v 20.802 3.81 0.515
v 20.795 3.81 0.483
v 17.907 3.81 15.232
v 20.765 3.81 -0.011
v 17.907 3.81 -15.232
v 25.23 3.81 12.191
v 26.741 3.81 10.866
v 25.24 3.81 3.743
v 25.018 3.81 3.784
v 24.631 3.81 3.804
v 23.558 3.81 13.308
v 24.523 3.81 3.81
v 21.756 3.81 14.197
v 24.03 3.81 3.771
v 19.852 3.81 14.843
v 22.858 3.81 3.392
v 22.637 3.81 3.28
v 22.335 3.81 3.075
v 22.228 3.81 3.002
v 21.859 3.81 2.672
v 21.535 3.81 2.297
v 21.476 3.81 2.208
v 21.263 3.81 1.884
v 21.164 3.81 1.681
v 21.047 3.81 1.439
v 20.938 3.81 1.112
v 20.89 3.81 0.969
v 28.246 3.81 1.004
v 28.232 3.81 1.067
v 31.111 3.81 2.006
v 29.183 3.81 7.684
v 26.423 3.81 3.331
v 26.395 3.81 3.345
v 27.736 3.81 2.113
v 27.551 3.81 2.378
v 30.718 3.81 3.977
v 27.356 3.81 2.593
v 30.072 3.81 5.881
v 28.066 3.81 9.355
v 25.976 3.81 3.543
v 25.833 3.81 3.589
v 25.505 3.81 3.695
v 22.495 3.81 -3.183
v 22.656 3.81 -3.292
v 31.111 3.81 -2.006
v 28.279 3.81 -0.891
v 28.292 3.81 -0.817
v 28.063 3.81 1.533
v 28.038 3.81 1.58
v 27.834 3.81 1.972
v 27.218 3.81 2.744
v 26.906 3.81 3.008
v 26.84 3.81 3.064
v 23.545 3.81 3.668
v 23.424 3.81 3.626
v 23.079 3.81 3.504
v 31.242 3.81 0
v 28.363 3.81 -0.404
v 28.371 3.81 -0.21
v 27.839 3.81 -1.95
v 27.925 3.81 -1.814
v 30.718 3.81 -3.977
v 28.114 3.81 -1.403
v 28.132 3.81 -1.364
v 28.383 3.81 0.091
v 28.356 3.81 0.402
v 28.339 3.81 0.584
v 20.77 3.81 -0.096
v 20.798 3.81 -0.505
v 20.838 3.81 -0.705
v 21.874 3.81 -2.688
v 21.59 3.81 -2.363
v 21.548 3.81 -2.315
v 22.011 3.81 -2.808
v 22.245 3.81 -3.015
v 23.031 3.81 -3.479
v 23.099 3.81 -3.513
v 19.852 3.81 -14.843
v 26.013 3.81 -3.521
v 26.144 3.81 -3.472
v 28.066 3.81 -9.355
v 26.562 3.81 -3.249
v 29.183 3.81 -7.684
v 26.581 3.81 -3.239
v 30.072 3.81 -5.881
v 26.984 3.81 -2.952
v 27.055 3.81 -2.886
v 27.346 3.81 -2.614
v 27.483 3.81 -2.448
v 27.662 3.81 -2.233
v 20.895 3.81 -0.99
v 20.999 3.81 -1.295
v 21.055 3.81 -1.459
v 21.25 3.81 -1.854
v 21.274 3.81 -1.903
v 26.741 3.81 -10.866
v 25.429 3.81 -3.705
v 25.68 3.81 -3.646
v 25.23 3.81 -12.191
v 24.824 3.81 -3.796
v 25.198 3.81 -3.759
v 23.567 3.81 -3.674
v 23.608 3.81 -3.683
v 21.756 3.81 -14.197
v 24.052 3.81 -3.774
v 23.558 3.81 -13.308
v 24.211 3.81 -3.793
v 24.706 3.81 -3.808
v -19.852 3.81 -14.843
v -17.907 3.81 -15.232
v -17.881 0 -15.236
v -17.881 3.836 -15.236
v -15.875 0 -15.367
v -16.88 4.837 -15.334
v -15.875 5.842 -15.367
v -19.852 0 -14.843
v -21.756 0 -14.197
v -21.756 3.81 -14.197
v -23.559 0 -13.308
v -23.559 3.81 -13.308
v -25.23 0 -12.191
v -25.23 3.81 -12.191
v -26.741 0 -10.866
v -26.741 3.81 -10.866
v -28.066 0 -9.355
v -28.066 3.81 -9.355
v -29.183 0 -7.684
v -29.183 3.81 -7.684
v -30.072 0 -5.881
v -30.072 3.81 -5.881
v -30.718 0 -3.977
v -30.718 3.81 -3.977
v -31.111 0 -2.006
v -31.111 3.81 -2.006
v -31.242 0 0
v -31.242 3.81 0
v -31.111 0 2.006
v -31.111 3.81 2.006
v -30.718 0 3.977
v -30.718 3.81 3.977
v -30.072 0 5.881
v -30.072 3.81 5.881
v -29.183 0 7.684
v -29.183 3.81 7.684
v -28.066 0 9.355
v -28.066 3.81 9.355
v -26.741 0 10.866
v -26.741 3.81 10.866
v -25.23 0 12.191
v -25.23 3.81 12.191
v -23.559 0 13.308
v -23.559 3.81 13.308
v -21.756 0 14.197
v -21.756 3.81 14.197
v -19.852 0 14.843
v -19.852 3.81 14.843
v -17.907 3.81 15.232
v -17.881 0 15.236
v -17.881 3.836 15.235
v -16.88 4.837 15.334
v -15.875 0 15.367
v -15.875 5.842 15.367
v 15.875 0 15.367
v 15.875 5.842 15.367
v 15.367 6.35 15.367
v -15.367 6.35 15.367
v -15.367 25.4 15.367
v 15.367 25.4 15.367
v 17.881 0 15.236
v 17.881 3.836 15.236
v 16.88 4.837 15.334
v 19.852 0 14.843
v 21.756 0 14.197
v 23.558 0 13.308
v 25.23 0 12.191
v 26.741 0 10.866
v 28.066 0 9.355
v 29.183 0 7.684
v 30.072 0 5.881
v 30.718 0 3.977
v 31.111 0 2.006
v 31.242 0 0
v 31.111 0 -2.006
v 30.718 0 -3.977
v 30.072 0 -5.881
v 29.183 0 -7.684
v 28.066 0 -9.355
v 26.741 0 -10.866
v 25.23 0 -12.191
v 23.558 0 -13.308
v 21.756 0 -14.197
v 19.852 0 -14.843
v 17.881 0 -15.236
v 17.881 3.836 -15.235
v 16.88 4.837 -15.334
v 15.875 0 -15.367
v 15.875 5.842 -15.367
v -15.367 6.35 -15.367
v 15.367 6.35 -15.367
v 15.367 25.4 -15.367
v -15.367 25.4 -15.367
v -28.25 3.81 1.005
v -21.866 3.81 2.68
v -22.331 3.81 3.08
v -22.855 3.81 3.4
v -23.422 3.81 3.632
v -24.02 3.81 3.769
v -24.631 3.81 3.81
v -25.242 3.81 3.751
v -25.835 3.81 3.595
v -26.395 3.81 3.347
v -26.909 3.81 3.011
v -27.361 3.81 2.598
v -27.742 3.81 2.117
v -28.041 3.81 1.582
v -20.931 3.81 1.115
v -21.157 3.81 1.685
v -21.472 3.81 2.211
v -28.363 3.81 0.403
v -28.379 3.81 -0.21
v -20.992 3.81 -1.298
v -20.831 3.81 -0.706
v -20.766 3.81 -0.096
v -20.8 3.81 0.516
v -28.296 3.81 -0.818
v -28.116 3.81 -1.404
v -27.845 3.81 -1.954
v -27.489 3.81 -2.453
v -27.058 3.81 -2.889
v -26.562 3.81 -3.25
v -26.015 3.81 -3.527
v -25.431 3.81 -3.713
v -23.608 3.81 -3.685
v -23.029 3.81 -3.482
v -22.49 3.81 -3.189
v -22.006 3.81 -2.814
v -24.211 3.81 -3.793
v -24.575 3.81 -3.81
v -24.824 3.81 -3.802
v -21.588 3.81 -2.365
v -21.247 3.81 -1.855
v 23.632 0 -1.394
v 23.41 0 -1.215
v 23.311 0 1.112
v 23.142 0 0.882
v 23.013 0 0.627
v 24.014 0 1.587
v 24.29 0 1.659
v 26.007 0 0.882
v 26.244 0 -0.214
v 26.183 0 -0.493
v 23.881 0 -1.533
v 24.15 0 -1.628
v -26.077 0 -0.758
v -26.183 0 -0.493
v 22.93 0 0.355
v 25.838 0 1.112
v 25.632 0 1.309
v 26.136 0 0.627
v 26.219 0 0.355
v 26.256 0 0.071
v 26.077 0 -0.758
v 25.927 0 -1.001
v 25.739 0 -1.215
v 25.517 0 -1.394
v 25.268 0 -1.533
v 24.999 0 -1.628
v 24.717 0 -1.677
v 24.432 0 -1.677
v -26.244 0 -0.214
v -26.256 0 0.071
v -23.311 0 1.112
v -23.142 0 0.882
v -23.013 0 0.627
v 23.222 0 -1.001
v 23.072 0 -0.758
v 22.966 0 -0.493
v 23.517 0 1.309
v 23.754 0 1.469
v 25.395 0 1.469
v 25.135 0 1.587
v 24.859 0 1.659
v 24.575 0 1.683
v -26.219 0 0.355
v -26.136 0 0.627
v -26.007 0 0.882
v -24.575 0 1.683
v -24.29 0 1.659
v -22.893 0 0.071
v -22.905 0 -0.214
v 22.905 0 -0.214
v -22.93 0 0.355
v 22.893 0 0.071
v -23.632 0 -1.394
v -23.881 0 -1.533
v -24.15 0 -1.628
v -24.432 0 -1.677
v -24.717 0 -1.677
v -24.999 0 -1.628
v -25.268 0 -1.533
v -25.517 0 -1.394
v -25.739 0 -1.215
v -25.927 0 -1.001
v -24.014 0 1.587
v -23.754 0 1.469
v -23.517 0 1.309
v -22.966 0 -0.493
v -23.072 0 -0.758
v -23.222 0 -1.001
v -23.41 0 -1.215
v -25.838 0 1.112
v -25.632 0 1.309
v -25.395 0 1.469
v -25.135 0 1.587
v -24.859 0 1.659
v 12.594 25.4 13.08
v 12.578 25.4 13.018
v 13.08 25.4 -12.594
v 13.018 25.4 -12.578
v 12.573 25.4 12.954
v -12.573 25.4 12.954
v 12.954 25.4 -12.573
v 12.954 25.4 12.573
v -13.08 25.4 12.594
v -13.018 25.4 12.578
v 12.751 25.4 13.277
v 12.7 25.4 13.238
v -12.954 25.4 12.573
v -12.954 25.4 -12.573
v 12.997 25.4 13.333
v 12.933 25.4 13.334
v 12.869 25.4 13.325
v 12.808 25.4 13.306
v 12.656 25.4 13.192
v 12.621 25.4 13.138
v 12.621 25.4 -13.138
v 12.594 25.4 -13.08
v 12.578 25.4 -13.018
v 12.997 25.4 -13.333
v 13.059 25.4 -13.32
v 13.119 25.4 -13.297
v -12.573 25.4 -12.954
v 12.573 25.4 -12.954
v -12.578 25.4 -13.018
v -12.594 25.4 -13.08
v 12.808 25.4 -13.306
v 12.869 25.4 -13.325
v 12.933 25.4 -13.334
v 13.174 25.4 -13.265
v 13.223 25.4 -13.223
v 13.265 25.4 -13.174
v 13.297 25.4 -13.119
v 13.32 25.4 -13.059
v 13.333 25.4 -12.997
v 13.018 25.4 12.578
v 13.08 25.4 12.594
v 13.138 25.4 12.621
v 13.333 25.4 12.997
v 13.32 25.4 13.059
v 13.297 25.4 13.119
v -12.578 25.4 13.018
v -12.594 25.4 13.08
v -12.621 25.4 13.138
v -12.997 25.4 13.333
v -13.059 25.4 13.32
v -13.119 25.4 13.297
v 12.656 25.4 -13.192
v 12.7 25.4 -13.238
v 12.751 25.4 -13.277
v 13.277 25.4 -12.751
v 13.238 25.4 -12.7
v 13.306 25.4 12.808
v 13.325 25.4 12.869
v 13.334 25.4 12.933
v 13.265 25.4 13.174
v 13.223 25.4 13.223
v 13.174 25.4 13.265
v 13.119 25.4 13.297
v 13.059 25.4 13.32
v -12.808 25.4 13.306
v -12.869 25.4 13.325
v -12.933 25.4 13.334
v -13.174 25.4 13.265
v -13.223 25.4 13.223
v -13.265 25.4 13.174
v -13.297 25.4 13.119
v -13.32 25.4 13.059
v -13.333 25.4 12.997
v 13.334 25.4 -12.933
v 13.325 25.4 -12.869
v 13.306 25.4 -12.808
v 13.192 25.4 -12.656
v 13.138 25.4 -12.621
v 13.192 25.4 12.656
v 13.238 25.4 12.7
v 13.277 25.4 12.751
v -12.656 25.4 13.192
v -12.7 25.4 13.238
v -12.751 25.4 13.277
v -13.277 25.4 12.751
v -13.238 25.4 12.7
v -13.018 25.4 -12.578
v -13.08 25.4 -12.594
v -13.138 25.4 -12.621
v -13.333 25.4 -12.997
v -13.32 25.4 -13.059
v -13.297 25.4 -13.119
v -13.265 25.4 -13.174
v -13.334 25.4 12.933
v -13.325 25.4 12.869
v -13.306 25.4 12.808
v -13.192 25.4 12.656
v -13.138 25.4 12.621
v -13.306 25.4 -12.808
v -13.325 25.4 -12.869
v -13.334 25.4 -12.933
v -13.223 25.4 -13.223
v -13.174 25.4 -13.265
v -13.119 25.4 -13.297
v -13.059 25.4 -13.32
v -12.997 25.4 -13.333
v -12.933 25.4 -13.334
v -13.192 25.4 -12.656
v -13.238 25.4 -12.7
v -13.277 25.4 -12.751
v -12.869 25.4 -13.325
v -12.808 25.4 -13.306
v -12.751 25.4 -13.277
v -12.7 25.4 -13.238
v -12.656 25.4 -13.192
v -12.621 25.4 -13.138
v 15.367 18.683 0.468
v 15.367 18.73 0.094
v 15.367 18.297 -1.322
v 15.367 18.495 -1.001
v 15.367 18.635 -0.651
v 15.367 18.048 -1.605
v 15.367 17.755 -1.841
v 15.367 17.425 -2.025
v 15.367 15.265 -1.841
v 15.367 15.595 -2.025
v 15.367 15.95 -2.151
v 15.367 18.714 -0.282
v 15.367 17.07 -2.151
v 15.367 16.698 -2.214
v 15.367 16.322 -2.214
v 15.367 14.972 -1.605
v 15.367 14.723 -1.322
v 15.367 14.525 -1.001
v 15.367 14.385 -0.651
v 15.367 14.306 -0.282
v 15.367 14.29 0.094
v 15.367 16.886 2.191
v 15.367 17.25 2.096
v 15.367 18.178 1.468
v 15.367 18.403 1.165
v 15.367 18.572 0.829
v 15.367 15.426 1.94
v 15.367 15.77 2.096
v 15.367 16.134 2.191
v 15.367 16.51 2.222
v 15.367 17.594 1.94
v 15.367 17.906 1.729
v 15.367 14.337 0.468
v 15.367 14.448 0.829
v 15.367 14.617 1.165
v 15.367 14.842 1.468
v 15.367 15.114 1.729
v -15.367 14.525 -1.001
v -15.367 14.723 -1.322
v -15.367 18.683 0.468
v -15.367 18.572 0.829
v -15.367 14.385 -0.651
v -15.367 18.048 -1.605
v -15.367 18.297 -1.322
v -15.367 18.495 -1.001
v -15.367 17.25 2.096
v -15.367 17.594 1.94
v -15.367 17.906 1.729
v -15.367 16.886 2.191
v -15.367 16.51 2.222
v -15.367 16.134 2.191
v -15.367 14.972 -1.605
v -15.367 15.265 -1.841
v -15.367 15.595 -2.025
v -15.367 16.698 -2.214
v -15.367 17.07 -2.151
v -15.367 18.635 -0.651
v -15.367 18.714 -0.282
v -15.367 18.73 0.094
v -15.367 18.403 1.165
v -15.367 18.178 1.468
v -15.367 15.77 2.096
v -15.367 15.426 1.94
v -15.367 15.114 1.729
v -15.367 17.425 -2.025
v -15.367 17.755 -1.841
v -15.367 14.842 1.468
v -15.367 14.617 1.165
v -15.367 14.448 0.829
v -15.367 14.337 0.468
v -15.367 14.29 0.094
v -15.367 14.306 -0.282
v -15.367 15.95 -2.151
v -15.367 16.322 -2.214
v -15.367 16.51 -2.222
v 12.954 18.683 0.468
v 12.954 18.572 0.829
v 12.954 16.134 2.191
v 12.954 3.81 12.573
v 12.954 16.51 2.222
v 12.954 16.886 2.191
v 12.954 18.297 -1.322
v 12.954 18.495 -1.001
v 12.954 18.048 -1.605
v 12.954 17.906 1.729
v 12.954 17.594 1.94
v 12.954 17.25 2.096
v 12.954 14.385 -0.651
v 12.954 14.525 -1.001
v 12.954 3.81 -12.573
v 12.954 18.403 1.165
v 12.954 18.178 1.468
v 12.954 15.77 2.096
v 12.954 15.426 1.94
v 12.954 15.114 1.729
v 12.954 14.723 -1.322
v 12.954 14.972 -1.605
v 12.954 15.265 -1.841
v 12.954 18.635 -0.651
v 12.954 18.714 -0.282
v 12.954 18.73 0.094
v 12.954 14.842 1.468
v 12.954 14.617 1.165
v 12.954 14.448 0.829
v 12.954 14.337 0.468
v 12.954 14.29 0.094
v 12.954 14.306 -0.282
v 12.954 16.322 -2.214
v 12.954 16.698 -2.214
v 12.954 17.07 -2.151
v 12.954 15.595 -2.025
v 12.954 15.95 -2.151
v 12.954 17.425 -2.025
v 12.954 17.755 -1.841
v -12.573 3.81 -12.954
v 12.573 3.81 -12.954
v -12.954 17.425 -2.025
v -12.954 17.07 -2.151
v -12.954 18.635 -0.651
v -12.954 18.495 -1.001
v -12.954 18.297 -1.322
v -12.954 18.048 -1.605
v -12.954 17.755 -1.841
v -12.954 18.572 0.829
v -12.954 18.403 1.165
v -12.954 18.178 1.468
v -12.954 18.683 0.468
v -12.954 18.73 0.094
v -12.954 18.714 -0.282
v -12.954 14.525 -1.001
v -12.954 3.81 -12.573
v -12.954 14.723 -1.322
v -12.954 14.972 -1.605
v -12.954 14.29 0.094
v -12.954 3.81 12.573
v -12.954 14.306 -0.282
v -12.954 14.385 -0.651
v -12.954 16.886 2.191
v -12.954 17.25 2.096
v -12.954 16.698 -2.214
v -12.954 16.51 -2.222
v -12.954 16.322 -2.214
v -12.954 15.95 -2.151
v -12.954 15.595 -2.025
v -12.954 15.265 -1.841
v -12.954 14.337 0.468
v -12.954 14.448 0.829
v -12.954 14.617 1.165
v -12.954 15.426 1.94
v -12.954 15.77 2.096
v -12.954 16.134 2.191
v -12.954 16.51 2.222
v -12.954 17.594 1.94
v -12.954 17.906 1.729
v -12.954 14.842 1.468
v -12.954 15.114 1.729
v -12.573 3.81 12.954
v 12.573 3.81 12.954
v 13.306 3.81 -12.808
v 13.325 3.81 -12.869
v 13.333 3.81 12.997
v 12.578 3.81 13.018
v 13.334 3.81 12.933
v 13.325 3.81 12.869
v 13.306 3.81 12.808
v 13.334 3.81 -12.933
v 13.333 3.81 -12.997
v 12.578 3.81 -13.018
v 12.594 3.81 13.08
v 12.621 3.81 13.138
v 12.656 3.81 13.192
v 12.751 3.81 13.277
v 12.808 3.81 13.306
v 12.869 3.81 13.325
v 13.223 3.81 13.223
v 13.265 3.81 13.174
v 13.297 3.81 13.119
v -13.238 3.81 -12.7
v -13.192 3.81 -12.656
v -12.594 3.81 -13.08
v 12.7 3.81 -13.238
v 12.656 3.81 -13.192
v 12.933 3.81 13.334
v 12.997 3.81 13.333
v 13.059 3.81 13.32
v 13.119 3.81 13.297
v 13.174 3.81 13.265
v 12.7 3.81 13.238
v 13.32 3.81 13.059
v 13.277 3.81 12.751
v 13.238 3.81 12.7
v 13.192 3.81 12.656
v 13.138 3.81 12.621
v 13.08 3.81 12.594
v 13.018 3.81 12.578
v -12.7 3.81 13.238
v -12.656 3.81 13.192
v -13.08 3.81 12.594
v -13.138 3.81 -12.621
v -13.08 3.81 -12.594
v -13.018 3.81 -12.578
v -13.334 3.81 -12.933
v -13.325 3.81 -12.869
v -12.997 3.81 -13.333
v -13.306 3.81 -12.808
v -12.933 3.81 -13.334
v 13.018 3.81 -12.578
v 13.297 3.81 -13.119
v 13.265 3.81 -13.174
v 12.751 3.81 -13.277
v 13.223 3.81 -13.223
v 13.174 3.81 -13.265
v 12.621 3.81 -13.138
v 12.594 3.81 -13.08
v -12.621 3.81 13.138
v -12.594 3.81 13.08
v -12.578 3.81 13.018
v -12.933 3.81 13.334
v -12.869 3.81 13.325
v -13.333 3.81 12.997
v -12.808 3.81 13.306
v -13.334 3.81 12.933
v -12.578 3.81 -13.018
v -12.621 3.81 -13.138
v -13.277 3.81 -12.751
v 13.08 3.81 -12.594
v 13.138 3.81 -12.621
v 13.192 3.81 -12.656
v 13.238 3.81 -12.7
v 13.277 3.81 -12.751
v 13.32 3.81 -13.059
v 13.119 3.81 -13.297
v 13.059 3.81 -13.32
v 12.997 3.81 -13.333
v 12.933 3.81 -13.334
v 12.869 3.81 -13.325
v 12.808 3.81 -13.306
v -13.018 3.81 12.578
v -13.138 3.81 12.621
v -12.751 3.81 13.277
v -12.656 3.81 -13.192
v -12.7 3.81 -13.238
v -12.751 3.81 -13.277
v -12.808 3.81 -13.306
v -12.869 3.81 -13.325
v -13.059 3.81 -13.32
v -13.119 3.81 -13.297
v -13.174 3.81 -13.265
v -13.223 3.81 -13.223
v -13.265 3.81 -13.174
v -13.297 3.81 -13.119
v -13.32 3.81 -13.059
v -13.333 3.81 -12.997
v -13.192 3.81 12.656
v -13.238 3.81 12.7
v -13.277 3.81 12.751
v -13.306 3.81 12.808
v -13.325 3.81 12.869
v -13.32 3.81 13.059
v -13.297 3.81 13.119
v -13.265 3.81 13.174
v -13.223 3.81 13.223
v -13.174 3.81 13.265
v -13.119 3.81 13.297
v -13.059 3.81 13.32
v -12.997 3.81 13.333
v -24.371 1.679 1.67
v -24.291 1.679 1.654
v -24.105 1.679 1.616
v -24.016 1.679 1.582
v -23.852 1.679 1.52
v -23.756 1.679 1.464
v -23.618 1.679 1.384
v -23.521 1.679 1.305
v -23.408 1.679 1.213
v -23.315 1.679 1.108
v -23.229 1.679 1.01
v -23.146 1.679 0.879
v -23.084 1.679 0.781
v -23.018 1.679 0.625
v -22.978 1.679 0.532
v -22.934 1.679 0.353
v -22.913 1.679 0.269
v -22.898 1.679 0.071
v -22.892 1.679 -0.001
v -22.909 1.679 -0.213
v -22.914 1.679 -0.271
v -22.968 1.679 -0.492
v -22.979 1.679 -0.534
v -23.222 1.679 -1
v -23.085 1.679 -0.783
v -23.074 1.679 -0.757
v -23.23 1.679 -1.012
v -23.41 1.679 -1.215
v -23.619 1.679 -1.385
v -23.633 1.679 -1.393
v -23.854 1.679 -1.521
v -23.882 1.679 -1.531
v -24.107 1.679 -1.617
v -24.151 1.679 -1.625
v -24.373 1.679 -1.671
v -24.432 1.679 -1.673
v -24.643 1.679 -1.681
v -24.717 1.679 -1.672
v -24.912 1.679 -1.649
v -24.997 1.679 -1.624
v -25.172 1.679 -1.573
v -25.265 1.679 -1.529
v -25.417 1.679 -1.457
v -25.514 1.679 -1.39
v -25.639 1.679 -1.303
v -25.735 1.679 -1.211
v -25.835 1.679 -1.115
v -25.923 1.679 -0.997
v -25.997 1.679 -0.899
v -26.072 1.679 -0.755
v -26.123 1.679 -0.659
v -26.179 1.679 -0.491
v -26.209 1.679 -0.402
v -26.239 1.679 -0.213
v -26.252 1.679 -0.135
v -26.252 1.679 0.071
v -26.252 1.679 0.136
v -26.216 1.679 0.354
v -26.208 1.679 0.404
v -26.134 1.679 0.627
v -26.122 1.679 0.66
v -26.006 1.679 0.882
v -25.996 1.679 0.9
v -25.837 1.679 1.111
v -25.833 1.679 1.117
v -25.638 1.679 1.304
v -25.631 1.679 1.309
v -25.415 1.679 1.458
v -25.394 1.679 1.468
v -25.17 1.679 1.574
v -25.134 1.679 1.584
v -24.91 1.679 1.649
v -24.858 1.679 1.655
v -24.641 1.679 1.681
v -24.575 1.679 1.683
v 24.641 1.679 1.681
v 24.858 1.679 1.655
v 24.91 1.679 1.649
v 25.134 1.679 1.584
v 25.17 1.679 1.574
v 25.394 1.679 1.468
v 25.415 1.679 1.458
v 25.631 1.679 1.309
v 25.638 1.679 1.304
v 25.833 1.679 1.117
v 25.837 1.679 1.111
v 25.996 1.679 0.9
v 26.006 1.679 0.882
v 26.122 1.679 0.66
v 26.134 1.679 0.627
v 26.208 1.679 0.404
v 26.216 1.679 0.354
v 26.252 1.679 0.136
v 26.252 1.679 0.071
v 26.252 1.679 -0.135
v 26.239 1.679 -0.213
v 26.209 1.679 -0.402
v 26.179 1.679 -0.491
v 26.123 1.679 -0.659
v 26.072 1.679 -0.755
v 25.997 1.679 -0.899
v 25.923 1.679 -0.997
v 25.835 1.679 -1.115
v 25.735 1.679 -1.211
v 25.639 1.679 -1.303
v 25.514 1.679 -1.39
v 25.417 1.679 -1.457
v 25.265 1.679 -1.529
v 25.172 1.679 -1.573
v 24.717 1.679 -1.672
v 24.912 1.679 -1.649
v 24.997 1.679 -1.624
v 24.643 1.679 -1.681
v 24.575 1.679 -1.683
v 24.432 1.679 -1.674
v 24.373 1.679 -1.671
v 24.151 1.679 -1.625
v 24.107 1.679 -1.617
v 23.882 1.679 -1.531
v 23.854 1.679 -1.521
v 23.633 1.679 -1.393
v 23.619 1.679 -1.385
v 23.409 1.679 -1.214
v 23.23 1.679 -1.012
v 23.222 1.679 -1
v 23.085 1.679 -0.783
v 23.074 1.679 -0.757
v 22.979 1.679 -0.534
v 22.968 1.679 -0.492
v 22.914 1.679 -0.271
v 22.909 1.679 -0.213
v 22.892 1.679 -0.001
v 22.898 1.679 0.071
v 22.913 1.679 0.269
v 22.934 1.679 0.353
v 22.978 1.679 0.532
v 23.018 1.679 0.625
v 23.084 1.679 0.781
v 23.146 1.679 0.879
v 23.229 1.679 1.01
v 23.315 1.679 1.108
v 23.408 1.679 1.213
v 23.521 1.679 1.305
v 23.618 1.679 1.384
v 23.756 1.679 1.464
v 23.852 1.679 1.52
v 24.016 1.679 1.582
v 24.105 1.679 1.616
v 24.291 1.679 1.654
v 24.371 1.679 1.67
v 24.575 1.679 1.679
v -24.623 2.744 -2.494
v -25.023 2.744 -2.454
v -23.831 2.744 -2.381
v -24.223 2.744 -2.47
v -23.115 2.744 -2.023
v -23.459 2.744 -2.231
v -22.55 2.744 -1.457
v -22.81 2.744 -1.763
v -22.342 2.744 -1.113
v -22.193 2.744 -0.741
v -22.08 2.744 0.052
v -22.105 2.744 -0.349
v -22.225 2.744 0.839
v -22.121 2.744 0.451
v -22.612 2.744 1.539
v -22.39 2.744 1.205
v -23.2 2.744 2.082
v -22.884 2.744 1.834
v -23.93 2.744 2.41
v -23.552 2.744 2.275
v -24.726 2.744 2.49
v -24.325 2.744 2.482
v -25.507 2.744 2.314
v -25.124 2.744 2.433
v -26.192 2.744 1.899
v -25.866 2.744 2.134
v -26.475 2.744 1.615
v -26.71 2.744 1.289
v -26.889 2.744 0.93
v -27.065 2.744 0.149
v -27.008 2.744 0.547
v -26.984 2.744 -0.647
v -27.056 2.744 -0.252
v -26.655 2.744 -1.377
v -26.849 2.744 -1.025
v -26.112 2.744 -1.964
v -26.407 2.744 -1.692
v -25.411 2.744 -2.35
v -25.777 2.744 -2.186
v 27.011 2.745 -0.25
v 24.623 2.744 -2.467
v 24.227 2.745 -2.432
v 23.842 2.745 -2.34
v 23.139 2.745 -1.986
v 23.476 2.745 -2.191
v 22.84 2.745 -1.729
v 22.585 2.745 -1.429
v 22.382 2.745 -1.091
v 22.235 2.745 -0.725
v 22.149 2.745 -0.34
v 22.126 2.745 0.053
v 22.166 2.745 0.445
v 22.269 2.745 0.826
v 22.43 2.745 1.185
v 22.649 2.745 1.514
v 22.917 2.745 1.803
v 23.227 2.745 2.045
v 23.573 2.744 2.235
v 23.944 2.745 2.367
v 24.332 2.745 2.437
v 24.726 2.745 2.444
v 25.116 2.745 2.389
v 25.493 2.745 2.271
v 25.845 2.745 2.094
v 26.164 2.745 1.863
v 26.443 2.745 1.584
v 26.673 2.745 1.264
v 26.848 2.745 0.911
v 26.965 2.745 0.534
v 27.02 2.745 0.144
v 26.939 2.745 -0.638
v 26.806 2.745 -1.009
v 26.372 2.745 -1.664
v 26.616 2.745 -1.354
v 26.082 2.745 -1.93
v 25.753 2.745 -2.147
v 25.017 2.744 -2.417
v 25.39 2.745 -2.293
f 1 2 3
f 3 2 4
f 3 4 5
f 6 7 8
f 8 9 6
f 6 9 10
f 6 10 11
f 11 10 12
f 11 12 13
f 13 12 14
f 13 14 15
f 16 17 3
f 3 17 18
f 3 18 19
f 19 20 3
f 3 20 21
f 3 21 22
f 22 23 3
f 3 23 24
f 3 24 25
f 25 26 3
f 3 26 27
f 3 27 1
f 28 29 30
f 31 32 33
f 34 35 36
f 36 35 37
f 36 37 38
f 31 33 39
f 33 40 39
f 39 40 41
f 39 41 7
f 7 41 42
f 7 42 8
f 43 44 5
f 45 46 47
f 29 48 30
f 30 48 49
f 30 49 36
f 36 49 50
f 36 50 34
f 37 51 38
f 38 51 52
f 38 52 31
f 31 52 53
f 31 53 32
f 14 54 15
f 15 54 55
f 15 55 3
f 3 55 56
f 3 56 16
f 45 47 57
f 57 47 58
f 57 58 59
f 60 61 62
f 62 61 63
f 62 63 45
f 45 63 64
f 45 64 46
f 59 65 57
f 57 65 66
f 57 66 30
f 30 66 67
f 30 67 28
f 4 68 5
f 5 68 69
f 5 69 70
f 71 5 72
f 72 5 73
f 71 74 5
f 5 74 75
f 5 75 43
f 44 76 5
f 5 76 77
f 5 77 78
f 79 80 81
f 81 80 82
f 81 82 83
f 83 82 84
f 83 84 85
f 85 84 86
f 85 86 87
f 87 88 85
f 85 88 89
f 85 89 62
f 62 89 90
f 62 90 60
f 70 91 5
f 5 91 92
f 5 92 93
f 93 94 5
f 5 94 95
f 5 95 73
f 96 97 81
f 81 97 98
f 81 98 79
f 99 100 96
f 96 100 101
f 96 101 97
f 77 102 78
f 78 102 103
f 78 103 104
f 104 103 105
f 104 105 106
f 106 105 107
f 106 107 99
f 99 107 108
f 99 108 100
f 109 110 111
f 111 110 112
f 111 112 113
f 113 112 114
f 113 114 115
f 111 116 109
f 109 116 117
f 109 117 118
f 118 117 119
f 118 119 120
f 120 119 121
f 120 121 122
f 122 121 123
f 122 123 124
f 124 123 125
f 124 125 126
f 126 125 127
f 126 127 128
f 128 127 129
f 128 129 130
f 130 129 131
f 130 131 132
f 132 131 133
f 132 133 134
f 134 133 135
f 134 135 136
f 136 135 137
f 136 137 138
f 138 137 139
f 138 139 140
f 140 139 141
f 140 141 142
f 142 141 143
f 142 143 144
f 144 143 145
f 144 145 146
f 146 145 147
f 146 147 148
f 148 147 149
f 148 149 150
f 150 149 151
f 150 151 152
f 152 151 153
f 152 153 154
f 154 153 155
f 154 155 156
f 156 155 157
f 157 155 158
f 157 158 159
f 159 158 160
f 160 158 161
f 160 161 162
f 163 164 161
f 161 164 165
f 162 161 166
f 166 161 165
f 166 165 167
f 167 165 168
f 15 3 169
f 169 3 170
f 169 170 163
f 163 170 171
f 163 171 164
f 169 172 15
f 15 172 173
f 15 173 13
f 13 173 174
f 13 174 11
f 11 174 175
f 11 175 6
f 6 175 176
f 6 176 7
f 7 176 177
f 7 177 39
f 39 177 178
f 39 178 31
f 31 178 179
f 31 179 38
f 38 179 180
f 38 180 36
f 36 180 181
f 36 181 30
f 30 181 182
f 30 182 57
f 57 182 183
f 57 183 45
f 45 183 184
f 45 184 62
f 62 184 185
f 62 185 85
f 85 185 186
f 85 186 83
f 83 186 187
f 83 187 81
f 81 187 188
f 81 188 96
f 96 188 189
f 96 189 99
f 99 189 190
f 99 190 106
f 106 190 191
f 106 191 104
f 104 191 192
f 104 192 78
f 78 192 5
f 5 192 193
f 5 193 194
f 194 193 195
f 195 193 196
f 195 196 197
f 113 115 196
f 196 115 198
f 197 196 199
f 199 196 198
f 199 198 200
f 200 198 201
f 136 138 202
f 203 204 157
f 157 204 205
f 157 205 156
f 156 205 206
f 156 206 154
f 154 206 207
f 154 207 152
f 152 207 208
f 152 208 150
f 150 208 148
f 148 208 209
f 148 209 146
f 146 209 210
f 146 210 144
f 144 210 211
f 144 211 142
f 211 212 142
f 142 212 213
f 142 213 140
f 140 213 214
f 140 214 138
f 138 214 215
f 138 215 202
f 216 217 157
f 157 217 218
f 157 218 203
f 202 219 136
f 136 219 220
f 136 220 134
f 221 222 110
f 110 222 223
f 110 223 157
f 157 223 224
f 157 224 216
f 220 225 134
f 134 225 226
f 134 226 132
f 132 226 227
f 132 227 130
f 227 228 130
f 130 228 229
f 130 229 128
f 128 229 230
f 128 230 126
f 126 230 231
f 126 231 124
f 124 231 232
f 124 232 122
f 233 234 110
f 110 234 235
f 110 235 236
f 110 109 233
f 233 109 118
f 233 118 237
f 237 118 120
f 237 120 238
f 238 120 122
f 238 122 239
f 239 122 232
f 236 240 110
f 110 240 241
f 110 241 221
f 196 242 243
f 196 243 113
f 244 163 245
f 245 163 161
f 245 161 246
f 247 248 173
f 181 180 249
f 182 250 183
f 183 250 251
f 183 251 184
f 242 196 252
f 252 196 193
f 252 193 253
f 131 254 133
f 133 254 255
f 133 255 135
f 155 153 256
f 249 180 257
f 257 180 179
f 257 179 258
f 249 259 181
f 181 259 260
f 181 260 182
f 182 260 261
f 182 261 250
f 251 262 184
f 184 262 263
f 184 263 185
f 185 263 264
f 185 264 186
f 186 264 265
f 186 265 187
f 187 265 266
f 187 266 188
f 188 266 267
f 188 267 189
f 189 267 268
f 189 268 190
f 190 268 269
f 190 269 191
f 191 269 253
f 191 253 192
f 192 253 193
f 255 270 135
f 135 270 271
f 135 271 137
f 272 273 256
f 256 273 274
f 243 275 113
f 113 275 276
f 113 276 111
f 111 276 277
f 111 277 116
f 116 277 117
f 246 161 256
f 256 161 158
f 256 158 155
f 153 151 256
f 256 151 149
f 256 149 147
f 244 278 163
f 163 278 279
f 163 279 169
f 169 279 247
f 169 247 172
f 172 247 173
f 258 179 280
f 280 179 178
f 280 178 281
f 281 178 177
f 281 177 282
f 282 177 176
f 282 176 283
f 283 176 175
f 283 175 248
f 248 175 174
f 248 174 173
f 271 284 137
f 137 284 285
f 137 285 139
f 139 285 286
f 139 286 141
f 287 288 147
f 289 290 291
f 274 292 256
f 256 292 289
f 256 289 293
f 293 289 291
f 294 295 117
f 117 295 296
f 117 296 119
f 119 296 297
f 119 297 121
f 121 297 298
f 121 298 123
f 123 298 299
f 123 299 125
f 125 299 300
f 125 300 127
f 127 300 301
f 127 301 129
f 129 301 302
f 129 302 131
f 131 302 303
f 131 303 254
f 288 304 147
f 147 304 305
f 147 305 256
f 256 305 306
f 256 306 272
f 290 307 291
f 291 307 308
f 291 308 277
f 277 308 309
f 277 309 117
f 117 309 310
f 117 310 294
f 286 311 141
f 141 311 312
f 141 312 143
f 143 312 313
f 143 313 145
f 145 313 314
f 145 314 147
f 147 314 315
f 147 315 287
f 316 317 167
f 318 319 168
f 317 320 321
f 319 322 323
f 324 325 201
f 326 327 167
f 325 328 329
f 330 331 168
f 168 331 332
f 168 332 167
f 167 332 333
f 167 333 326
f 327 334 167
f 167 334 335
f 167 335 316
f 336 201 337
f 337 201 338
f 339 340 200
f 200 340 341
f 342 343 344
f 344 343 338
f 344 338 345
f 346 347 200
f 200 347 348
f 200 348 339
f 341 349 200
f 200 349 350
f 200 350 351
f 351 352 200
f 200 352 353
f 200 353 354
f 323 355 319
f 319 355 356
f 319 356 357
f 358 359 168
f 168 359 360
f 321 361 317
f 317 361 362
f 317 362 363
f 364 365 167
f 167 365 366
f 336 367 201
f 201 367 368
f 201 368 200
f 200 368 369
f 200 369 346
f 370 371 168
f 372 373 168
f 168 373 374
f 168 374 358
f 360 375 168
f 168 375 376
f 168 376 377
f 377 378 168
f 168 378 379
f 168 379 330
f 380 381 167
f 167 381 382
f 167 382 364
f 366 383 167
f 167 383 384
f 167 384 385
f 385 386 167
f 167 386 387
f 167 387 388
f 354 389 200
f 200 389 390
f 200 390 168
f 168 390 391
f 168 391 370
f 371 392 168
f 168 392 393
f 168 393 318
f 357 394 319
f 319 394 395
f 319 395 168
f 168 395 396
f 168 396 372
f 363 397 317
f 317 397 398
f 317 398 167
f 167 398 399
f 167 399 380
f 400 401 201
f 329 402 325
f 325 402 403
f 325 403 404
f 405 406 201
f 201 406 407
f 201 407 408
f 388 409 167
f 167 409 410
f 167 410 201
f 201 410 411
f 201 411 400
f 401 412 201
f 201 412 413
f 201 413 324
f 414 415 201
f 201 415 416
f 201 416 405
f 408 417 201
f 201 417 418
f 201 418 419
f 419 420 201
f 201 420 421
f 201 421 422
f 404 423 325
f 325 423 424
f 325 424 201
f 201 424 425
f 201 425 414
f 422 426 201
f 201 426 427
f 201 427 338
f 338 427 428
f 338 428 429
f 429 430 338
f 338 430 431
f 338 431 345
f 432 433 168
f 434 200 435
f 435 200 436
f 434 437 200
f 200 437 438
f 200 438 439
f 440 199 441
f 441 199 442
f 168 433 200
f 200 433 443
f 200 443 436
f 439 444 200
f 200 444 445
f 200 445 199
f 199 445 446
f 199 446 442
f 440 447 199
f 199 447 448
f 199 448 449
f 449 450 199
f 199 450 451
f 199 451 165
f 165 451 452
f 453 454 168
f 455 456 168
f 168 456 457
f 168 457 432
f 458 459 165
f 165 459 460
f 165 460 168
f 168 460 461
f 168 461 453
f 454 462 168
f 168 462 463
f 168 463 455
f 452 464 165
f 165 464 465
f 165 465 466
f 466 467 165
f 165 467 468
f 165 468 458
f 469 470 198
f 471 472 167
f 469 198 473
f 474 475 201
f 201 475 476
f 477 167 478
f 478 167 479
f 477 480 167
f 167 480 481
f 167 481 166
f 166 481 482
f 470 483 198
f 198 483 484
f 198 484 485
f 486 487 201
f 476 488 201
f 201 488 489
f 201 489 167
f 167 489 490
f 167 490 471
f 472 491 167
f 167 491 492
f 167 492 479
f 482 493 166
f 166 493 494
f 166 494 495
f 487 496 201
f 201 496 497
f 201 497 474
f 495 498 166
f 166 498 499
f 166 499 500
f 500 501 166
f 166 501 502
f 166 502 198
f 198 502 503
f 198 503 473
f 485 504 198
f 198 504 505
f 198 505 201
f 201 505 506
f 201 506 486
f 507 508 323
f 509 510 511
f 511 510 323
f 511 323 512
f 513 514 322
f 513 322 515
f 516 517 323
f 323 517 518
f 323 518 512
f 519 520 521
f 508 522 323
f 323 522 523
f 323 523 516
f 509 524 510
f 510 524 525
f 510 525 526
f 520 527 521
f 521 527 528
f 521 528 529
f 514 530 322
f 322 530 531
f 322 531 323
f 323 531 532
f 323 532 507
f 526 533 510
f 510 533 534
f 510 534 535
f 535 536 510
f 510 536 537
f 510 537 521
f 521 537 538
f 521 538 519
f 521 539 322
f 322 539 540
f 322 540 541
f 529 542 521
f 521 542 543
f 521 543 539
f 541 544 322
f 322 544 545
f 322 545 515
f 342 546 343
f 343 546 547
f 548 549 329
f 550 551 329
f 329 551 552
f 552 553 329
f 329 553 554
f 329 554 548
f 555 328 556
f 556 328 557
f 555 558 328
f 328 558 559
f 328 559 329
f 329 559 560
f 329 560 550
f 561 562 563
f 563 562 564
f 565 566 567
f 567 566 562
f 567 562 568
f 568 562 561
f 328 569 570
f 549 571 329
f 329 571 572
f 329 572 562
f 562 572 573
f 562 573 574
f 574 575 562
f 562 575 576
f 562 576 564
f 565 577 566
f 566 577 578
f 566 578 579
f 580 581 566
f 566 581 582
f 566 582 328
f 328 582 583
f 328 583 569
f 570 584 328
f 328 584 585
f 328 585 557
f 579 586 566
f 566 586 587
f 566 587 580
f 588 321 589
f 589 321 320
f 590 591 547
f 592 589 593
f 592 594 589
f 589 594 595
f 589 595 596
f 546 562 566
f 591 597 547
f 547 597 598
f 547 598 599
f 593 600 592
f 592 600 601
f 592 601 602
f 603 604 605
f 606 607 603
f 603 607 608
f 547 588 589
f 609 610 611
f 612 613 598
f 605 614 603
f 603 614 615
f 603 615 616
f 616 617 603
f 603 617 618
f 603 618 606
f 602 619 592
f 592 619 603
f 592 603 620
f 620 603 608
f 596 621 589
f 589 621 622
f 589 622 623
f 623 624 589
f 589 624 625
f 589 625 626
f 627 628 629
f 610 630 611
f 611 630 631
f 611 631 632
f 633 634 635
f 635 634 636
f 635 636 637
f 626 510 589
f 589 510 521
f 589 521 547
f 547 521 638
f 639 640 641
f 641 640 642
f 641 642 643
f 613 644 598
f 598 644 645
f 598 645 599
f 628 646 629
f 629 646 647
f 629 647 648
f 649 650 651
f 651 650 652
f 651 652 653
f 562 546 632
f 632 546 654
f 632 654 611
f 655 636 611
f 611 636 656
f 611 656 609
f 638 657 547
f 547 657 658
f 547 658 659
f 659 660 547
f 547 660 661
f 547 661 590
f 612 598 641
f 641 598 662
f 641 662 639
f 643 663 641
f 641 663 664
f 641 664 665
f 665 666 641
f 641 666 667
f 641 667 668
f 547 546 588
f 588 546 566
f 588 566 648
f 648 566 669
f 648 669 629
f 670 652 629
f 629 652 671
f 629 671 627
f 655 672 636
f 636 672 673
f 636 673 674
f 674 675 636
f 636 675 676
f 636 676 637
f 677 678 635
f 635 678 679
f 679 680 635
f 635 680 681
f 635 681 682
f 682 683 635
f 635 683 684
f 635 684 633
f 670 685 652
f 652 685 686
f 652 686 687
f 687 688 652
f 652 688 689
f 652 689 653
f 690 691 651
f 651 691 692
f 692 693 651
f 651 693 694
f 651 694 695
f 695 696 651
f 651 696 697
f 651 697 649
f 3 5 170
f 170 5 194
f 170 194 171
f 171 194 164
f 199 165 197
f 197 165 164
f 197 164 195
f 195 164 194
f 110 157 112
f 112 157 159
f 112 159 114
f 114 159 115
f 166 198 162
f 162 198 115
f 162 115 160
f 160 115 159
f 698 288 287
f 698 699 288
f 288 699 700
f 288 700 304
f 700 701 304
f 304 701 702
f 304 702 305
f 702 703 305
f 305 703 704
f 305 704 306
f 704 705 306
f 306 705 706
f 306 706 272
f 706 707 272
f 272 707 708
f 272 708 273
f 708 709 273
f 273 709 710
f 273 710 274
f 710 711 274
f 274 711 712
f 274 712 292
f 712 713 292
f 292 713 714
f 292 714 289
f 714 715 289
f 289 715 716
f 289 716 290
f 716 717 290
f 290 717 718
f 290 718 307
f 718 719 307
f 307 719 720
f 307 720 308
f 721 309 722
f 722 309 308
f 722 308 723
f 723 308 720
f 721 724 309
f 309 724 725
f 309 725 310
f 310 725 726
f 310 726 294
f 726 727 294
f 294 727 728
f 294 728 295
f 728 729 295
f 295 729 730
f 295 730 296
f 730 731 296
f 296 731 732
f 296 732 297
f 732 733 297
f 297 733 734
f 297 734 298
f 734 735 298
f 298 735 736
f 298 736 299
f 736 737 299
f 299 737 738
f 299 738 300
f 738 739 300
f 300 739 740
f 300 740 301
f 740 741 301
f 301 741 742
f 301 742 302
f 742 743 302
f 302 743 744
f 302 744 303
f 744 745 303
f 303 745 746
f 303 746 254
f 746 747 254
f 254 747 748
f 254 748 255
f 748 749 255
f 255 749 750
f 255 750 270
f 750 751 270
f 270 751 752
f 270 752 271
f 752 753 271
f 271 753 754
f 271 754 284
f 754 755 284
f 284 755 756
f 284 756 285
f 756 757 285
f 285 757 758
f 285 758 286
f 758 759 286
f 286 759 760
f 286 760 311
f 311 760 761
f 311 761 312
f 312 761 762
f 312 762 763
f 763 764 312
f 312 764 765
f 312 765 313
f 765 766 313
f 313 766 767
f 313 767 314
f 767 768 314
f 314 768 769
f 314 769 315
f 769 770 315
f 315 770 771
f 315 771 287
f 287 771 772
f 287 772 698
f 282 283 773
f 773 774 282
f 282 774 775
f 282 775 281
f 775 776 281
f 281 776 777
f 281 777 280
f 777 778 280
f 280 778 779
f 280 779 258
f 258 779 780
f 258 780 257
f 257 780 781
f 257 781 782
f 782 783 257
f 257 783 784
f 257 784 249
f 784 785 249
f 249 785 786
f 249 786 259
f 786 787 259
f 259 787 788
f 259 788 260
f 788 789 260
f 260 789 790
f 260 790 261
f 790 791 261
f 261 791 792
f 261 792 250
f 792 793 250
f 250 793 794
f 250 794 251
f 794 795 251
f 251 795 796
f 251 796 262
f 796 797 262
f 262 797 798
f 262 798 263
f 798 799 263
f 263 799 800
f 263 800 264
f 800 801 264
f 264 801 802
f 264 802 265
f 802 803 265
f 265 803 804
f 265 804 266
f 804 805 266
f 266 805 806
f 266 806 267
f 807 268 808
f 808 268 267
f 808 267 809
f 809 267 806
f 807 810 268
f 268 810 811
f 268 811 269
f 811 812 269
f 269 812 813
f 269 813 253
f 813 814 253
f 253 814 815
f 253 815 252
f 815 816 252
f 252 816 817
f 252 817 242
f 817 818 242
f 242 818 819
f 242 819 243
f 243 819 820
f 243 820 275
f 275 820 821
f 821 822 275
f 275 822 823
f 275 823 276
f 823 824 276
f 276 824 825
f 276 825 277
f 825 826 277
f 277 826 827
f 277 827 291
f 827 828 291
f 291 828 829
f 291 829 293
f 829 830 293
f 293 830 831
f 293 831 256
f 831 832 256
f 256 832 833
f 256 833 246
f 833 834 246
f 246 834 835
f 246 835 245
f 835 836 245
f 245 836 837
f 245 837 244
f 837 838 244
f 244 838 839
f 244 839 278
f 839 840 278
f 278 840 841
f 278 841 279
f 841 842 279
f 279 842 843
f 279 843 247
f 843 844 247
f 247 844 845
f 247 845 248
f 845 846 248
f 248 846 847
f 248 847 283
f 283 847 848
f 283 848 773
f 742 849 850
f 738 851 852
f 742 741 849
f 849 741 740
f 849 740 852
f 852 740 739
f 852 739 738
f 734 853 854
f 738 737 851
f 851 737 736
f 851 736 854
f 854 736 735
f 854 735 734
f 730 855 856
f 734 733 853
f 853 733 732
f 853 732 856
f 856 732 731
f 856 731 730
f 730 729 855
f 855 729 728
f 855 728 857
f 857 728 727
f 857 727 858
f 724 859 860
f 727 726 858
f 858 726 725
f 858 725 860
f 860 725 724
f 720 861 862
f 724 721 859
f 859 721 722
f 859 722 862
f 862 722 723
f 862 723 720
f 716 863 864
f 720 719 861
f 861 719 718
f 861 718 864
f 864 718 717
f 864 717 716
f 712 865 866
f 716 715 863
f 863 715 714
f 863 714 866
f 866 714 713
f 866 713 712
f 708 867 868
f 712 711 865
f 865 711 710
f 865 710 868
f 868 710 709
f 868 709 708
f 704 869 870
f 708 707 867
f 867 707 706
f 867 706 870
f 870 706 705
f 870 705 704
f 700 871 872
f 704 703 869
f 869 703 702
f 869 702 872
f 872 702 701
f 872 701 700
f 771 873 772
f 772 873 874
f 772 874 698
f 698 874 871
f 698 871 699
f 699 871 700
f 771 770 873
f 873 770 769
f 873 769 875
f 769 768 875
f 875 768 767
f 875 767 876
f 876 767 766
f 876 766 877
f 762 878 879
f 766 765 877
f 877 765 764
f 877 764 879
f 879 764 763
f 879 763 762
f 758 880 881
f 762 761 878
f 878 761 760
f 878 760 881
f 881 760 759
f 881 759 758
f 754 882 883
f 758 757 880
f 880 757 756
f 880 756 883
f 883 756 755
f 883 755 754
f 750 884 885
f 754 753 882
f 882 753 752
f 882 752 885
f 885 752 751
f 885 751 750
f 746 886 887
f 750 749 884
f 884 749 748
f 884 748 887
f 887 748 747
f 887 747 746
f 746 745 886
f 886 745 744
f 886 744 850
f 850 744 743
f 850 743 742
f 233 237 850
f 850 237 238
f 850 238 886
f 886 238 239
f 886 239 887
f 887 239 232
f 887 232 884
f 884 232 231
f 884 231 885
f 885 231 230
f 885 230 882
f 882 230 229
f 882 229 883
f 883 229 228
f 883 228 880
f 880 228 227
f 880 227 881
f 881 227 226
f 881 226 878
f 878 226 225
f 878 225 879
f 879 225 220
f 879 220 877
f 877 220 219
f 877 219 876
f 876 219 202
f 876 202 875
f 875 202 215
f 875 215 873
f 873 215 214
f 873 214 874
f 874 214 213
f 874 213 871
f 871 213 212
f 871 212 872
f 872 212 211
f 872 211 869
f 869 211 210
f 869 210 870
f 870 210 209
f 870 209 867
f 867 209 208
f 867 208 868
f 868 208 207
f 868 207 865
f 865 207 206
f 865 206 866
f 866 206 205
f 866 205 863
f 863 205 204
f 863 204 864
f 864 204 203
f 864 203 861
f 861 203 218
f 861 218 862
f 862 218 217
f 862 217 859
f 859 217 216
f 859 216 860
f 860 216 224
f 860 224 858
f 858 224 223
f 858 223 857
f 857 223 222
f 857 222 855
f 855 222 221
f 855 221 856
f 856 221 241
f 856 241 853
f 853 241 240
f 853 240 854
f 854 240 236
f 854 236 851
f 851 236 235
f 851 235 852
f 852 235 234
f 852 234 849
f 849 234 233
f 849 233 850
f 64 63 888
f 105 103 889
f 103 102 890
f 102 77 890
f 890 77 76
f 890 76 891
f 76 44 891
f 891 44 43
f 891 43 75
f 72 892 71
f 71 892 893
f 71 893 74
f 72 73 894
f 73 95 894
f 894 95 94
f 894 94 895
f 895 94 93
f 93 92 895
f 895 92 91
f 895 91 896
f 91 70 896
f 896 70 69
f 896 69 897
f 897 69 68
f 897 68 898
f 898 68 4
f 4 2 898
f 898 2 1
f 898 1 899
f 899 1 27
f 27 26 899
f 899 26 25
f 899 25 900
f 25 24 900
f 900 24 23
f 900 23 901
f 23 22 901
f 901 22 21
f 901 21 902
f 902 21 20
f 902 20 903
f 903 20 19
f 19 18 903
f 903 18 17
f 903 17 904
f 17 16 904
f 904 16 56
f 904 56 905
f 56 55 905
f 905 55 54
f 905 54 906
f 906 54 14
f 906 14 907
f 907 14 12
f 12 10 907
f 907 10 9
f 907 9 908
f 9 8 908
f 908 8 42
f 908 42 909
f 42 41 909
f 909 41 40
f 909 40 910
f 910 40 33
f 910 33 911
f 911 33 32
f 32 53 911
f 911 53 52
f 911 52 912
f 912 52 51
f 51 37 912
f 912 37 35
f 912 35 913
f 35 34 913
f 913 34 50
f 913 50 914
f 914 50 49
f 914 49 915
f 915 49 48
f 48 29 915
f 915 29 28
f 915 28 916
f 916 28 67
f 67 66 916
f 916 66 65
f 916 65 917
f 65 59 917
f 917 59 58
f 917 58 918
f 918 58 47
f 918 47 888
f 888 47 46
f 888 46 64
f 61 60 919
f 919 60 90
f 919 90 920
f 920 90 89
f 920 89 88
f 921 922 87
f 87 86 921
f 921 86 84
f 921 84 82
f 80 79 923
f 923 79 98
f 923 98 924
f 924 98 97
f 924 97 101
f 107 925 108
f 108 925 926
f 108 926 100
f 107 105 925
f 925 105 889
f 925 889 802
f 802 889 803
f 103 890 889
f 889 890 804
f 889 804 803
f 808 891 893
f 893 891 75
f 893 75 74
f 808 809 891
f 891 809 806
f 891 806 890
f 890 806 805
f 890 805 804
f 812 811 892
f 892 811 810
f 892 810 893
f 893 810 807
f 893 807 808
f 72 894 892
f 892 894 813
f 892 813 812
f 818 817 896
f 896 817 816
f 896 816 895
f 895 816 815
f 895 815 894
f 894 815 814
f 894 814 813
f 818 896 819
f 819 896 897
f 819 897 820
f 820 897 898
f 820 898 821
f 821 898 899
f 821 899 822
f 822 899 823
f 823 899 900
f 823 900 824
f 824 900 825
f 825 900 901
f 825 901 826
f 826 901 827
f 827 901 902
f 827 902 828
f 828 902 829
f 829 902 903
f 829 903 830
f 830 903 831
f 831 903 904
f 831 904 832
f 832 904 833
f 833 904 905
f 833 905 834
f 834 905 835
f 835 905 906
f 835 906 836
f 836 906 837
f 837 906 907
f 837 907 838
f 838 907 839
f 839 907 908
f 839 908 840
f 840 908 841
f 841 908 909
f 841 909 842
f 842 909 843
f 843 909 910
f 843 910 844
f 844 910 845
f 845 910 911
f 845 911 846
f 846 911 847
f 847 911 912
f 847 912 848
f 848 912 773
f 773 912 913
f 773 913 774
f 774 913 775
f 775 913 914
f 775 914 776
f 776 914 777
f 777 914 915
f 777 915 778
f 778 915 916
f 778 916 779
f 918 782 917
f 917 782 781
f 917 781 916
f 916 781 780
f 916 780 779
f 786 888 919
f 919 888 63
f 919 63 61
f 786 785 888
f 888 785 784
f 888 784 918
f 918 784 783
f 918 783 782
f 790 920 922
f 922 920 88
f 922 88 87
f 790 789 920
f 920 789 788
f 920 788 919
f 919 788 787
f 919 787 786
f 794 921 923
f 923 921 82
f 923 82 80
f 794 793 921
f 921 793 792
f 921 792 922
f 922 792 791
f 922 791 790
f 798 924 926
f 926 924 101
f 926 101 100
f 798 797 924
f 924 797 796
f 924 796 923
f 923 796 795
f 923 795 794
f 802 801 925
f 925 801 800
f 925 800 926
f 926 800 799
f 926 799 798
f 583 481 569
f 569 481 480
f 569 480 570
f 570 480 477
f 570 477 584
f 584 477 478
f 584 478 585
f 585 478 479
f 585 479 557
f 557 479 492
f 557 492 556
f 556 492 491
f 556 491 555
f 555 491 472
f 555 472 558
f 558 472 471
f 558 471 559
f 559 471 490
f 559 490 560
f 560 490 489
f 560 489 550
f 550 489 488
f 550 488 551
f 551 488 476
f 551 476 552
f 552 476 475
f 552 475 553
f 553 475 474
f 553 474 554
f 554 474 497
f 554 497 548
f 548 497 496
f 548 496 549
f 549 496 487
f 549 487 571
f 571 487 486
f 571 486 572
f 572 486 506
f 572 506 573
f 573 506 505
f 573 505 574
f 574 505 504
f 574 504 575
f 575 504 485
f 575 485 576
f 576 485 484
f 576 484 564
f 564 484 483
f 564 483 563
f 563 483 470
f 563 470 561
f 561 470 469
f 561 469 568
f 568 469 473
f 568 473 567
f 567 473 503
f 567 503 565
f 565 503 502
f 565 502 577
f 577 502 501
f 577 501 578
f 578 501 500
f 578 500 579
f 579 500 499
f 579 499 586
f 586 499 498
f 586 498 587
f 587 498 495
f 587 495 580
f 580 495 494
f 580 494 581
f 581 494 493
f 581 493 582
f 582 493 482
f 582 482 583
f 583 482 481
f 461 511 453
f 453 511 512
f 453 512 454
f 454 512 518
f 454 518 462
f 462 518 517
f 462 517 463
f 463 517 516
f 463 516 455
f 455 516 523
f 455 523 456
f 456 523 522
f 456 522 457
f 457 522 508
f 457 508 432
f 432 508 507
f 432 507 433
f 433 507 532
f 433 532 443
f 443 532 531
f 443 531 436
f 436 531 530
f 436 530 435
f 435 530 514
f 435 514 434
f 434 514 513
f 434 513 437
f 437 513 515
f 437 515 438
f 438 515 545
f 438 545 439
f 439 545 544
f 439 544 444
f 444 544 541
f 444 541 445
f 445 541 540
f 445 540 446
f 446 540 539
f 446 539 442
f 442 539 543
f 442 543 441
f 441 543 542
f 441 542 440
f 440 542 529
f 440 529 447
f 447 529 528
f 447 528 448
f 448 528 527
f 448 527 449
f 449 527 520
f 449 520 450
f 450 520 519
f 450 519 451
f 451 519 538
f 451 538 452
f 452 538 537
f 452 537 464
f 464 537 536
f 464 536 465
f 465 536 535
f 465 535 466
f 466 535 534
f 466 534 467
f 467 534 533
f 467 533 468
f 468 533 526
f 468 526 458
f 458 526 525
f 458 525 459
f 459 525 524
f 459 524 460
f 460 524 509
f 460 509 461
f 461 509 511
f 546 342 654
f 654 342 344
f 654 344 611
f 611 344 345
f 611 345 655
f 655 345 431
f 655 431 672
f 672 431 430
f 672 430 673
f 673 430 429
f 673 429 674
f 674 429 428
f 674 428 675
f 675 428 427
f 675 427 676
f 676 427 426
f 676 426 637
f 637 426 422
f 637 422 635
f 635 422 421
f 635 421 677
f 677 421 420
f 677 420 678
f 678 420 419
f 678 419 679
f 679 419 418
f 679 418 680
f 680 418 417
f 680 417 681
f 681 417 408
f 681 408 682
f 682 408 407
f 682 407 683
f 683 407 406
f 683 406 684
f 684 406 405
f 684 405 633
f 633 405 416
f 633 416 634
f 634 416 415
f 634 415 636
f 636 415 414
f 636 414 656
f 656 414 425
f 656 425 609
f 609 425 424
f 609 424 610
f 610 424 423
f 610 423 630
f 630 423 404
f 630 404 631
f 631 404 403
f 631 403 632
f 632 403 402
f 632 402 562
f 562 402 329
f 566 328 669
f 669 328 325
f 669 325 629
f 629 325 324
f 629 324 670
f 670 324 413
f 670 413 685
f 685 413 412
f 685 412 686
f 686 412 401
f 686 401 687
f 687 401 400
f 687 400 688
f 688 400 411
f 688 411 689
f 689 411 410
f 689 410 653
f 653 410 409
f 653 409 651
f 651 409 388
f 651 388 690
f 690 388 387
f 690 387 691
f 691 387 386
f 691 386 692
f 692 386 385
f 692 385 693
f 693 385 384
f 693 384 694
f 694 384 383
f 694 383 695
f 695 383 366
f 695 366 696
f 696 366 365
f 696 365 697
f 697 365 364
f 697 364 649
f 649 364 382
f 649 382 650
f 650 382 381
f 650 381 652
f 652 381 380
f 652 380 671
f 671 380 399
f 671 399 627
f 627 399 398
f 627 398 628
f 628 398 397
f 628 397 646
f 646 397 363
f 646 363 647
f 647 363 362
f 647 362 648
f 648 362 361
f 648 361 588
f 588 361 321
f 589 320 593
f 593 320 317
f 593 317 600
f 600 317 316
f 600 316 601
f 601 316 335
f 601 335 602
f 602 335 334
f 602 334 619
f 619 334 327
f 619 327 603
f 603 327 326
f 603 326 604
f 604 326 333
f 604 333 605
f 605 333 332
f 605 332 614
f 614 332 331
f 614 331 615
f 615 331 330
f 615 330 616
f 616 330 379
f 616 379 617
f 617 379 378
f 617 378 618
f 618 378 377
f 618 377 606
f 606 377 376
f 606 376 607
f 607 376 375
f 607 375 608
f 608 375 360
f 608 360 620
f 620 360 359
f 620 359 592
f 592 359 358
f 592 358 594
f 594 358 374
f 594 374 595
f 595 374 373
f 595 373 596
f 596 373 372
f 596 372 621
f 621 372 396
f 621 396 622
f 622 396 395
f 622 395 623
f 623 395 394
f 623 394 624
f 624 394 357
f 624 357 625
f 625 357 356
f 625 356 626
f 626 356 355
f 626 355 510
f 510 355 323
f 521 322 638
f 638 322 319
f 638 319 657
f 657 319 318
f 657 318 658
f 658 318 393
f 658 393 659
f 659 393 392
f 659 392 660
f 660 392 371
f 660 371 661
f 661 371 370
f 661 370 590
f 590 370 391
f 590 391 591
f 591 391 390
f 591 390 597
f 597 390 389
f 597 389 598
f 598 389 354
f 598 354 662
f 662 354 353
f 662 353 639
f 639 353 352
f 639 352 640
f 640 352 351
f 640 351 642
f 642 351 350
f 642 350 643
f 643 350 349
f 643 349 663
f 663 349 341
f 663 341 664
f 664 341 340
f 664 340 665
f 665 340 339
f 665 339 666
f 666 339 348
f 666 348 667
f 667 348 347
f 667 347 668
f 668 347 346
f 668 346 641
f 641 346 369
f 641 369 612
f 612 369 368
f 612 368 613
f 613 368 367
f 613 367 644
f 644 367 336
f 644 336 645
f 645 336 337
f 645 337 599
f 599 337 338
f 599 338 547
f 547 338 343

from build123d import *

# Parameters (mm, degrees)
BOSS_EXTRUDE1_DEPTH     = 3.81
SKETCH2_W               = 30.734
SKETCH2_H               = 30.734
SKETCH2_W_2             = 25.908
SKETCH2_H_2             = 25.908
BOSS_EXTRUDE2_DEPTH     = 21.59
CHAMFER1_SIZE           = 2.54
SKETCH3_R               = 1.68275
CUT_EXTRUDE1_DEPTH      = 3.81
CUT_EXTRUDE2_DEPTH      = 54.240878222
CUT_EXTRUDE2_DEPTH_BACK = 54.240878222
SKETCH6_R               = 2.2225
SKETCH8_R               = 0.381
CUT_EXTRUDE3_DEPTH      = 21.59


with BuildPart() as part:
    # Sketch1 → Boss-Extrude1 (new body)
    with BuildSketch(Plane(origin=(0, 0, 0), x_dir=(1, 0, 0), z_dir=(0, 1, 0))):
        with BuildLine():
            Line((-15.875, 15.367), (15.875, 15.367))
            ThreePointArc((15.875, 15.367), (31.242, 0), (15.875, -15.367))
            Line((15.875, -15.367), (-15.875, -15.367))
            ThreePointArc((-15.875, -15.367), (-31.242, 0), (-15.875, 15.367))
        make_face()
    extrude(amount=BOSS_EXTRUDE1_DEPTH)

    # Sketch2 → Boss-Extrude2 (add)
    with BuildSketch(Plane(origin=(0, 3.81, 0), x_dir=(1, 0, 0), z_dir=(0, 1, 0))):
        Rectangle(SKETCH2_W, SKETCH2_H)
        Rectangle(SKETCH2_W_2, SKETCH2_H_2, mode=Mode.SUBTRACT)
    extrude(amount=BOSS_EXTRUDE2_DEPTH)

    # Chamfer1
    chamfer1_edges = [part.edges().sort_by_distance(p)[0] for p in [
        (15.367, 3.81, 0),
        (-15.367, 3.81, 0),
    ]]
    chamfer(chamfer1_edges, length=CHAMFER1_SIZE)

    # Sketch3 → Cut-Extrude1 (cut)
    with BuildSketch(Plane(origin=(0, 3.81, 0), x_dir=(1, 0, 0), z_dir=(0, 1, 0))):
        with Locations(Location((-24.5745, 0, 0), (0, 0, 270))):
            Circle(SKETCH3_R)
        with Locations(Location((24.5745, 0, 0), (0, 0, 270))):
            Circle(SKETCH3_R)
    extrude(amount=-CUT_EXTRUDE1_DEPTH, mode=Mode.SUBTRACT)

    # Cut-Loft1: read off the stored shape, not the designer's step
    # Cut-Loft1: loft between two sections, ruled curve by curve
    cut_loft1_from = [
        Edge.make_bspline([(-26.145987116, 1.27, -0.601727352), (-27.349441821, 1.27, 2.54124688), (-24.206467589, 1.27, 3.744701584), (-23.003012884, 1.27, 0.601727352), (-21.799558179, 1.27, -2.54124688), (-24.942532411, 1.27, -3.744701584), (-26.145987116, 1.27, -0.601727352)], [0, 0, 0, 0, 0.5, 0.5, 0.5, 1, 1, 1, 1], 3, [1, 0.333333333, 0.333333333, 1, 0.333333333, 0.333333333, 1]),
    ]
    cut_loft1_to = [
        Edge.make_bspline([(-24.211181072, 3.81, -3.79263752), (-31.796456111, 3.81, -4.519275376), (-32.523093968, 3.81, 3.065999663), (-24.937818928, 3.81, 3.79263752), (-17.352543889, 3.81, 4.519275376), (-16.625906032, 3.81, -3.065999663), (-24.211181072, 3.81, -3.79263752)], [0, 0, 0, 0, 0.5, 0.5, 0.5, 1, 1, 1, 1], 3, [1, 0.333333333, 0.333333333, 1, 0.333333333, 0.333333333, 1]),
    ]
    cut_loft1 = Solid(Shell([*[Face.make_surface_from_curves(cut_loft1_from[k], cut_loft1_to[k]) for k in range(1)], Face(Wire(cut_loft1_from)), Face(Wire(cut_loft1_to))]))
    add(cut_loft1, mode=Mode.SUBTRACT)

    # Mirror1: Cut-Loft1 across plane
    add(cut_loft1.mirror(Plane(origin=(0, 0, 0), x_dir=(0, 0, 1), z_dir=(1, 0, 0))), mode=Mode.SUBTRACT)

    # Sketch6 → Cut-Extrude2 (cut, two sides: drawn at the far end of the back side and taken through both)
    with BuildSketch(Plane.ZY.offset(-12.954).offset(-CUT_EXTRUDE2_DEPTH_BACK)):
        with Locations(Location((0, 16.51, 0), (0, 0, 180))):
            Circle(SKETCH6_R)
    extrude(amount=CUT_EXTRUDE2_DEPTH + CUT_EXTRUDE2_DEPTH_BACK, mode=Mode.SUBTRACT)

    # Sketch8 → Cut-Extrude3 (cut)
    with BuildSketch(Plane(origin=(0, 25.4, 0), x_dir=(1, 0, 0), z_dir=(0, 1, 0))):
        with Locations((-12.954, 12.954)):
            Circle(SKETCH8_R)
        with Locations((12.954, 12.954)):
            Circle(SKETCH8_R)
        with Locations((12.954, -12.954)):
            Circle(SKETCH8_R)
        with Locations((-12.954, -12.954)):
            Circle(SKETCH8_R)
    extrude(amount=-CUT_EXTRUDE3_DEPTH, mode=Mode.SUBTRACT)


solid = part.part
